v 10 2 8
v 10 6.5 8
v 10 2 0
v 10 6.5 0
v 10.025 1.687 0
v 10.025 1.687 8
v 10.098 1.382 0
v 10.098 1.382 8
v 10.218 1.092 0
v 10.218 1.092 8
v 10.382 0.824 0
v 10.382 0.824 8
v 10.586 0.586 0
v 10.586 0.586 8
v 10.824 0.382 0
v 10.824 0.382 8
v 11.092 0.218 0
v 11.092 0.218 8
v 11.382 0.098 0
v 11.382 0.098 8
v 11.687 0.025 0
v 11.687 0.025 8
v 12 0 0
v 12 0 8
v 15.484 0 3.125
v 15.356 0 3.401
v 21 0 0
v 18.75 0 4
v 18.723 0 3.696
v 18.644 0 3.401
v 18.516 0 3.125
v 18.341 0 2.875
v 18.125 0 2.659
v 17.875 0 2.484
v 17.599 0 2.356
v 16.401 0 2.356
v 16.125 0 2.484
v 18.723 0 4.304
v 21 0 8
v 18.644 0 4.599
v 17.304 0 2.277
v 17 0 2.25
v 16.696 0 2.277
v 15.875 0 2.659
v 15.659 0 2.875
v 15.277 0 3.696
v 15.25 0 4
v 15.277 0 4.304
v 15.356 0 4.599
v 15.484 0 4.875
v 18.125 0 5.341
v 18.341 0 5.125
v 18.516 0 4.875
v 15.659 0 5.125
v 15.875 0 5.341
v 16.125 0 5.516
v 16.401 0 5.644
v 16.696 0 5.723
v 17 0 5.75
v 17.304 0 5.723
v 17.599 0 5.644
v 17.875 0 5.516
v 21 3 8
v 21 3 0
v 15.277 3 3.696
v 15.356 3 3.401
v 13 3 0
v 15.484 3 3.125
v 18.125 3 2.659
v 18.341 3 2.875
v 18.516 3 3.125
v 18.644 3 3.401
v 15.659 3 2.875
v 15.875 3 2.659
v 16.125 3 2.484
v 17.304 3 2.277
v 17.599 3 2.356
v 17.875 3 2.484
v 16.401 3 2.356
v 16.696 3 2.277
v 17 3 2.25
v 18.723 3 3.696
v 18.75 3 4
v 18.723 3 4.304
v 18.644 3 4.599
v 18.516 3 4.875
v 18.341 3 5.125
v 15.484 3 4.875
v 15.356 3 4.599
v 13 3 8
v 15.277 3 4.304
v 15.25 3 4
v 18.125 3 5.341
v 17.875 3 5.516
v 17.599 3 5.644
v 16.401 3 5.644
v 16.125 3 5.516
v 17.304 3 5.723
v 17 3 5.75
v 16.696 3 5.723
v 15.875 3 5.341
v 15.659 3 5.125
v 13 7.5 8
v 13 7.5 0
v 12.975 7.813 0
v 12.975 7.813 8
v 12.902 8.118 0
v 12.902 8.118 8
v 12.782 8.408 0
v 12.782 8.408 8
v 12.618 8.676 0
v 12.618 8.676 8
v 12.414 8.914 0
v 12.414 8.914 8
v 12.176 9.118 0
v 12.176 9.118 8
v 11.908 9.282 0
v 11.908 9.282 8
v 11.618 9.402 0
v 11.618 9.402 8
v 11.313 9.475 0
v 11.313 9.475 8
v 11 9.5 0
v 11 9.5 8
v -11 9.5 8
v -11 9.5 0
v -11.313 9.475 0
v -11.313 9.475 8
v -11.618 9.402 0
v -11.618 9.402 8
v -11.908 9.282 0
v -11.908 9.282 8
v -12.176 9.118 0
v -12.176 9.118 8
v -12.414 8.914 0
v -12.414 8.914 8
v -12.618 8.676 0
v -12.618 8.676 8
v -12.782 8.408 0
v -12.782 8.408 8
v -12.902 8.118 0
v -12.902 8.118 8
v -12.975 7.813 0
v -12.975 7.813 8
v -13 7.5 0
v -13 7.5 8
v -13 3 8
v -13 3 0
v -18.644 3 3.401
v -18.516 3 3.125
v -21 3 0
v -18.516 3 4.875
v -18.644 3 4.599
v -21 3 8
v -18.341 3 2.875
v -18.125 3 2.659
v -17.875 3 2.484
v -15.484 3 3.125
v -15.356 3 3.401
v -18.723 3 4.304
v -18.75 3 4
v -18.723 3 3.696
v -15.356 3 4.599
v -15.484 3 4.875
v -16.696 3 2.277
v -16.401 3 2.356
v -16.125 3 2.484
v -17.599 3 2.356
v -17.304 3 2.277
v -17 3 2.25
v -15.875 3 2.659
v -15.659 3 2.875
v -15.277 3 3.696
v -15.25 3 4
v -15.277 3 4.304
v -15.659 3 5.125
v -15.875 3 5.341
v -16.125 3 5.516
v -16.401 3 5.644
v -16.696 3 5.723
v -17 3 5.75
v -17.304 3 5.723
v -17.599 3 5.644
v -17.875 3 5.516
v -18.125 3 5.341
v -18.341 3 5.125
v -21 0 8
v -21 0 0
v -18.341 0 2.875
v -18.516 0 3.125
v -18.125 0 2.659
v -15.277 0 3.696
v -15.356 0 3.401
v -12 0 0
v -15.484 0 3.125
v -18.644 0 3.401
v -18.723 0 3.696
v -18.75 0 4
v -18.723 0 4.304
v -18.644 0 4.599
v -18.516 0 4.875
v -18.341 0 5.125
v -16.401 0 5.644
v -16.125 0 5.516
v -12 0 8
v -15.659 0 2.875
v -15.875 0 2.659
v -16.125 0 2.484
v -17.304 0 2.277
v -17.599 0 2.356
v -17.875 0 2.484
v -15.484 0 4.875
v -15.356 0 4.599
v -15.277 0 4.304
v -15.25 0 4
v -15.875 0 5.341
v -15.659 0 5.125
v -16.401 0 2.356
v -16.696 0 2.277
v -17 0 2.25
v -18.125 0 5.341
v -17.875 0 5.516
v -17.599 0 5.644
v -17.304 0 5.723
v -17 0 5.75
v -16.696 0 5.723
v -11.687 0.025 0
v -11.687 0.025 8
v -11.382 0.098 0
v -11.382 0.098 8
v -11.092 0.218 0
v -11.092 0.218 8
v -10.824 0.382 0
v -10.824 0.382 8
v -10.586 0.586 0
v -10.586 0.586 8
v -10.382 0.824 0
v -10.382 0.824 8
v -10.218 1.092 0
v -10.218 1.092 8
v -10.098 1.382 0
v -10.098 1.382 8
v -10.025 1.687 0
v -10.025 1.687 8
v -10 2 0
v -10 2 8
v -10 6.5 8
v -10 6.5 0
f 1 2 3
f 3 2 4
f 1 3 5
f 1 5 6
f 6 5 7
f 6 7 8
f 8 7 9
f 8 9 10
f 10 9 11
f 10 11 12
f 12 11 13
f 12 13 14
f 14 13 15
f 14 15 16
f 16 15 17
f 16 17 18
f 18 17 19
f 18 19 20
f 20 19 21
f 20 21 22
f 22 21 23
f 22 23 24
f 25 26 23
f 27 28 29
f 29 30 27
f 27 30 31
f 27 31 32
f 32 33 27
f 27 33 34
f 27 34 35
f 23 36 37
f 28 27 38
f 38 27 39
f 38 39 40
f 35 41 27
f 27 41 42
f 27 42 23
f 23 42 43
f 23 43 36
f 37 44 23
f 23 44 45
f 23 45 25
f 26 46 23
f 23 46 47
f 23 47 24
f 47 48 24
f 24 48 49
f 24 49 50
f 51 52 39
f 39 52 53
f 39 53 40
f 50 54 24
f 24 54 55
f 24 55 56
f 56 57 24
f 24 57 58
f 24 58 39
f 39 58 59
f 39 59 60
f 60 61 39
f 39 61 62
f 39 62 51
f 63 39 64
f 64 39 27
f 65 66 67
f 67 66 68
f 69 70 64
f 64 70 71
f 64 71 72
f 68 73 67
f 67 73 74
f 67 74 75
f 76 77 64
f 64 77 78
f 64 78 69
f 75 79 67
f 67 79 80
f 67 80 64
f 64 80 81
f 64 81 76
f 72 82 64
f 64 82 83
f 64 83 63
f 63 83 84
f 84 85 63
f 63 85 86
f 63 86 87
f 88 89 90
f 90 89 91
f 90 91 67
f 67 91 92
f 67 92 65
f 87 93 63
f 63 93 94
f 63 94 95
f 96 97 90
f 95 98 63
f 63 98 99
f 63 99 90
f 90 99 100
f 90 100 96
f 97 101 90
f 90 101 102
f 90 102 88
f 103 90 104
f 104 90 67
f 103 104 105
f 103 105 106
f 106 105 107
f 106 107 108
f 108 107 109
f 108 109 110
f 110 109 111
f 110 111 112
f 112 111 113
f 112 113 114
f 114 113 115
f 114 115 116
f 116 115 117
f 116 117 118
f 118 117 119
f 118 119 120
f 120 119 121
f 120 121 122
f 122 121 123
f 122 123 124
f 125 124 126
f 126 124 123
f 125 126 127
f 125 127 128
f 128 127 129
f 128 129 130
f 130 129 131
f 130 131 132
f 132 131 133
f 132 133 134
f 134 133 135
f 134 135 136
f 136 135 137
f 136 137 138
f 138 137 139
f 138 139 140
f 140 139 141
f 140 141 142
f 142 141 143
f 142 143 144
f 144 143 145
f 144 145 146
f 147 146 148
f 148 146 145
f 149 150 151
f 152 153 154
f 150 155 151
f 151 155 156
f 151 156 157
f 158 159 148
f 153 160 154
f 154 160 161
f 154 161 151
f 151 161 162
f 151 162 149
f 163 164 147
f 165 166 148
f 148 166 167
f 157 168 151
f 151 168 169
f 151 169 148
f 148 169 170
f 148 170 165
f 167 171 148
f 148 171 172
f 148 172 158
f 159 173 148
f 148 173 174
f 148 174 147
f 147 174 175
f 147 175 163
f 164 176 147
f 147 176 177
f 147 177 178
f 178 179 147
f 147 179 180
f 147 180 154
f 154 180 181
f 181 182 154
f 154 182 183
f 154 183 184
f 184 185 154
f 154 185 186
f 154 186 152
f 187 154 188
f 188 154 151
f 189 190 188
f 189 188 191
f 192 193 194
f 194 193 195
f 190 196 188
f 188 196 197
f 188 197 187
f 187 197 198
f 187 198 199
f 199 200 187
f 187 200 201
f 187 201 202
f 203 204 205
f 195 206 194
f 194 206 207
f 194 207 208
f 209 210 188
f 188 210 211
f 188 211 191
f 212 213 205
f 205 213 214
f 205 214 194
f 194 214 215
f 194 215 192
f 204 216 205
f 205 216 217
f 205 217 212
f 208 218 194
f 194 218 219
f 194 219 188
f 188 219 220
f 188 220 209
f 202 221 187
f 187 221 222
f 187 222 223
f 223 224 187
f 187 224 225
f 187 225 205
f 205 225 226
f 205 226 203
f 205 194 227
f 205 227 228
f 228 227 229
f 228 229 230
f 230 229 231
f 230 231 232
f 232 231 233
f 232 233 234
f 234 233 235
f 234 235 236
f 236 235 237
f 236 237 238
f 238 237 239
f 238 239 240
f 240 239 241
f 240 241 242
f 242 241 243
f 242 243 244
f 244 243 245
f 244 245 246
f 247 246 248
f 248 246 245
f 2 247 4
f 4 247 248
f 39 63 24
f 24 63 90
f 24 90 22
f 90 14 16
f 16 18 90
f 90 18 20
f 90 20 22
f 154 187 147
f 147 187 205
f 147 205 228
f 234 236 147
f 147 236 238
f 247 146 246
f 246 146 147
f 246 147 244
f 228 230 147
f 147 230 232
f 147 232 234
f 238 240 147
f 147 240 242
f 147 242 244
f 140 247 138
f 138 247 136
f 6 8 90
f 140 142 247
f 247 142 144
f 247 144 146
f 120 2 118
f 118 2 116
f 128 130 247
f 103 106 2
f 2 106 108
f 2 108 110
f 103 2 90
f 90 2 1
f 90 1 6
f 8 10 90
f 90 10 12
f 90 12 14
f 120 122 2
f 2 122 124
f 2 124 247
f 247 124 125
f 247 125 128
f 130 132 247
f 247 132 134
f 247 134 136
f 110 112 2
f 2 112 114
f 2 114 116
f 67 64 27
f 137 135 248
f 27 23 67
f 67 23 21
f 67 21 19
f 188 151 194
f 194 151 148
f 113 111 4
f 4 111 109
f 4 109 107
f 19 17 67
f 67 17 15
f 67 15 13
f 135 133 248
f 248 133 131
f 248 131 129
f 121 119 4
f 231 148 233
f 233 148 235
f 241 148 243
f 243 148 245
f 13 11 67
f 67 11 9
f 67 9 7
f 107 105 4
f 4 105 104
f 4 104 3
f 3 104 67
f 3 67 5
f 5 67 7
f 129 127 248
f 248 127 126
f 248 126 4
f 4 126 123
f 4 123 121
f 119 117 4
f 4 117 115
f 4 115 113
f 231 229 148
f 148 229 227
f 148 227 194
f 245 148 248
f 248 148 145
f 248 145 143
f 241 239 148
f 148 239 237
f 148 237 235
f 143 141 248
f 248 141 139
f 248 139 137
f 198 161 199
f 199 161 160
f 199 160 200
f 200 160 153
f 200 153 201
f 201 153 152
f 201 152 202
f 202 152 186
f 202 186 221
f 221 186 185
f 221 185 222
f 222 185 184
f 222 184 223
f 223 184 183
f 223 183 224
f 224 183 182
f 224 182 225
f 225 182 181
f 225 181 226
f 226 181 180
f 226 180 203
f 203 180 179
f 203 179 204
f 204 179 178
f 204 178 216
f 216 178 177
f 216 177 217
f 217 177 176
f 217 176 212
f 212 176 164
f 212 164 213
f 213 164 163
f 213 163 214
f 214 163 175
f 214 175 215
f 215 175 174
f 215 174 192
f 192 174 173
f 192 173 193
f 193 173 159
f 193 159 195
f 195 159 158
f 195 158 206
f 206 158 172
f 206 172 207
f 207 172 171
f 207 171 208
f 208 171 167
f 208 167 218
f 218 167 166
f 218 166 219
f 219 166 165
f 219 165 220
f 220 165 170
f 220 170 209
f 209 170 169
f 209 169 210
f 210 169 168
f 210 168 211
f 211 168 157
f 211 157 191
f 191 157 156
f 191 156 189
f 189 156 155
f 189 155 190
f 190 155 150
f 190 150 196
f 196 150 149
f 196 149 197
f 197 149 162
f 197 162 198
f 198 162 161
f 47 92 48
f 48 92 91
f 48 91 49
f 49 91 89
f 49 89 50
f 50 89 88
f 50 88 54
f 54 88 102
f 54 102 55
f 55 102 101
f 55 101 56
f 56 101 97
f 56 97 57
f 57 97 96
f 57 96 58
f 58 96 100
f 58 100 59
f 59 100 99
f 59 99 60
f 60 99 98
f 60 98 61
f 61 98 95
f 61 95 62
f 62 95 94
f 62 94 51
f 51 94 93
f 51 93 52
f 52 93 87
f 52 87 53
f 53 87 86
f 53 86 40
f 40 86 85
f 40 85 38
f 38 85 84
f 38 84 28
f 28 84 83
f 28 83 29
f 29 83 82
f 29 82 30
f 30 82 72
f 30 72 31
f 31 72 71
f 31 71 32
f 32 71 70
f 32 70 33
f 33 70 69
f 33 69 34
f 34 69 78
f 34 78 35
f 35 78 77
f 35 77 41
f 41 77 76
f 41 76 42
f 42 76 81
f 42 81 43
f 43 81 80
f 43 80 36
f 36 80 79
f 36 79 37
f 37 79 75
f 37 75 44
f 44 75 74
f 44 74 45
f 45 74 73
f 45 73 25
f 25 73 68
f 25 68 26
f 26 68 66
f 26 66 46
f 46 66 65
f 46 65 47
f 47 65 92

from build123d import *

# Parameters (mm, degrees)
BOSS_EXTRUDE1_DEPTH = 8
SKETCH2_R           = 1.75
CUT_EXTRUDE1_DEPTH  = 4


with BuildPart() as part:
    # Sketch1 → Boss-Extrude1 (new body)
    with BuildSketch(Plane.XY):
        with BuildLine():
            Line((-21, 0), (-12, 0))
            ThreePointArc((-12, 0), (-10.585786438, 0.585786438), (-10, 2))
            Line((-10, 2), (-10, 6.5))
            Line((-10, 6.5), (10, 6.5))
            Line((10, 6.5), (10, 2))
            ThreePointArc((10, 2), (10.585786438, 0.585786438), (12, 0))
            Line((12, 0), (21, 0))
            Line((21, 0), (21, 3))
            Line((21, 3), (13, 3))
            Line((13, 3), (13, 7.5))
            ThreePointArc((13, 7.5), (12.414213562, 8.914213562), (11, 9.5))
            Line((11, 9.5), (-11, 9.5))
            ThreePointArc((-11, 9.5), (-12.414213562, 8.914213562), (-13, 7.5))
            Line((-13, 7.5), (-13, 3))
            Line((-13, 3), (-21, 3))
            Line((-21, 3), (-21, 0))
        make_face()
    extrude(amount=BOSS_EXTRUDE1_DEPTH)

    # Sketch2 → Cut-Extrude1 (cut, through all)
    with BuildSketch(Plane(origin=(0, 3, 0), x_dir=(1, 0, 0), z_dir=(0, 1, 0))):
        with Locations((-17, -4)):
            Circle(SKETCH2_R)
        with Locations((17, -4)):
            Circle(SKETCH2_R)
    extrude(amount=-CUT_EXTRUDE1_DEPTH, mode=Mode.SUBTRACT)


solid = part.part
